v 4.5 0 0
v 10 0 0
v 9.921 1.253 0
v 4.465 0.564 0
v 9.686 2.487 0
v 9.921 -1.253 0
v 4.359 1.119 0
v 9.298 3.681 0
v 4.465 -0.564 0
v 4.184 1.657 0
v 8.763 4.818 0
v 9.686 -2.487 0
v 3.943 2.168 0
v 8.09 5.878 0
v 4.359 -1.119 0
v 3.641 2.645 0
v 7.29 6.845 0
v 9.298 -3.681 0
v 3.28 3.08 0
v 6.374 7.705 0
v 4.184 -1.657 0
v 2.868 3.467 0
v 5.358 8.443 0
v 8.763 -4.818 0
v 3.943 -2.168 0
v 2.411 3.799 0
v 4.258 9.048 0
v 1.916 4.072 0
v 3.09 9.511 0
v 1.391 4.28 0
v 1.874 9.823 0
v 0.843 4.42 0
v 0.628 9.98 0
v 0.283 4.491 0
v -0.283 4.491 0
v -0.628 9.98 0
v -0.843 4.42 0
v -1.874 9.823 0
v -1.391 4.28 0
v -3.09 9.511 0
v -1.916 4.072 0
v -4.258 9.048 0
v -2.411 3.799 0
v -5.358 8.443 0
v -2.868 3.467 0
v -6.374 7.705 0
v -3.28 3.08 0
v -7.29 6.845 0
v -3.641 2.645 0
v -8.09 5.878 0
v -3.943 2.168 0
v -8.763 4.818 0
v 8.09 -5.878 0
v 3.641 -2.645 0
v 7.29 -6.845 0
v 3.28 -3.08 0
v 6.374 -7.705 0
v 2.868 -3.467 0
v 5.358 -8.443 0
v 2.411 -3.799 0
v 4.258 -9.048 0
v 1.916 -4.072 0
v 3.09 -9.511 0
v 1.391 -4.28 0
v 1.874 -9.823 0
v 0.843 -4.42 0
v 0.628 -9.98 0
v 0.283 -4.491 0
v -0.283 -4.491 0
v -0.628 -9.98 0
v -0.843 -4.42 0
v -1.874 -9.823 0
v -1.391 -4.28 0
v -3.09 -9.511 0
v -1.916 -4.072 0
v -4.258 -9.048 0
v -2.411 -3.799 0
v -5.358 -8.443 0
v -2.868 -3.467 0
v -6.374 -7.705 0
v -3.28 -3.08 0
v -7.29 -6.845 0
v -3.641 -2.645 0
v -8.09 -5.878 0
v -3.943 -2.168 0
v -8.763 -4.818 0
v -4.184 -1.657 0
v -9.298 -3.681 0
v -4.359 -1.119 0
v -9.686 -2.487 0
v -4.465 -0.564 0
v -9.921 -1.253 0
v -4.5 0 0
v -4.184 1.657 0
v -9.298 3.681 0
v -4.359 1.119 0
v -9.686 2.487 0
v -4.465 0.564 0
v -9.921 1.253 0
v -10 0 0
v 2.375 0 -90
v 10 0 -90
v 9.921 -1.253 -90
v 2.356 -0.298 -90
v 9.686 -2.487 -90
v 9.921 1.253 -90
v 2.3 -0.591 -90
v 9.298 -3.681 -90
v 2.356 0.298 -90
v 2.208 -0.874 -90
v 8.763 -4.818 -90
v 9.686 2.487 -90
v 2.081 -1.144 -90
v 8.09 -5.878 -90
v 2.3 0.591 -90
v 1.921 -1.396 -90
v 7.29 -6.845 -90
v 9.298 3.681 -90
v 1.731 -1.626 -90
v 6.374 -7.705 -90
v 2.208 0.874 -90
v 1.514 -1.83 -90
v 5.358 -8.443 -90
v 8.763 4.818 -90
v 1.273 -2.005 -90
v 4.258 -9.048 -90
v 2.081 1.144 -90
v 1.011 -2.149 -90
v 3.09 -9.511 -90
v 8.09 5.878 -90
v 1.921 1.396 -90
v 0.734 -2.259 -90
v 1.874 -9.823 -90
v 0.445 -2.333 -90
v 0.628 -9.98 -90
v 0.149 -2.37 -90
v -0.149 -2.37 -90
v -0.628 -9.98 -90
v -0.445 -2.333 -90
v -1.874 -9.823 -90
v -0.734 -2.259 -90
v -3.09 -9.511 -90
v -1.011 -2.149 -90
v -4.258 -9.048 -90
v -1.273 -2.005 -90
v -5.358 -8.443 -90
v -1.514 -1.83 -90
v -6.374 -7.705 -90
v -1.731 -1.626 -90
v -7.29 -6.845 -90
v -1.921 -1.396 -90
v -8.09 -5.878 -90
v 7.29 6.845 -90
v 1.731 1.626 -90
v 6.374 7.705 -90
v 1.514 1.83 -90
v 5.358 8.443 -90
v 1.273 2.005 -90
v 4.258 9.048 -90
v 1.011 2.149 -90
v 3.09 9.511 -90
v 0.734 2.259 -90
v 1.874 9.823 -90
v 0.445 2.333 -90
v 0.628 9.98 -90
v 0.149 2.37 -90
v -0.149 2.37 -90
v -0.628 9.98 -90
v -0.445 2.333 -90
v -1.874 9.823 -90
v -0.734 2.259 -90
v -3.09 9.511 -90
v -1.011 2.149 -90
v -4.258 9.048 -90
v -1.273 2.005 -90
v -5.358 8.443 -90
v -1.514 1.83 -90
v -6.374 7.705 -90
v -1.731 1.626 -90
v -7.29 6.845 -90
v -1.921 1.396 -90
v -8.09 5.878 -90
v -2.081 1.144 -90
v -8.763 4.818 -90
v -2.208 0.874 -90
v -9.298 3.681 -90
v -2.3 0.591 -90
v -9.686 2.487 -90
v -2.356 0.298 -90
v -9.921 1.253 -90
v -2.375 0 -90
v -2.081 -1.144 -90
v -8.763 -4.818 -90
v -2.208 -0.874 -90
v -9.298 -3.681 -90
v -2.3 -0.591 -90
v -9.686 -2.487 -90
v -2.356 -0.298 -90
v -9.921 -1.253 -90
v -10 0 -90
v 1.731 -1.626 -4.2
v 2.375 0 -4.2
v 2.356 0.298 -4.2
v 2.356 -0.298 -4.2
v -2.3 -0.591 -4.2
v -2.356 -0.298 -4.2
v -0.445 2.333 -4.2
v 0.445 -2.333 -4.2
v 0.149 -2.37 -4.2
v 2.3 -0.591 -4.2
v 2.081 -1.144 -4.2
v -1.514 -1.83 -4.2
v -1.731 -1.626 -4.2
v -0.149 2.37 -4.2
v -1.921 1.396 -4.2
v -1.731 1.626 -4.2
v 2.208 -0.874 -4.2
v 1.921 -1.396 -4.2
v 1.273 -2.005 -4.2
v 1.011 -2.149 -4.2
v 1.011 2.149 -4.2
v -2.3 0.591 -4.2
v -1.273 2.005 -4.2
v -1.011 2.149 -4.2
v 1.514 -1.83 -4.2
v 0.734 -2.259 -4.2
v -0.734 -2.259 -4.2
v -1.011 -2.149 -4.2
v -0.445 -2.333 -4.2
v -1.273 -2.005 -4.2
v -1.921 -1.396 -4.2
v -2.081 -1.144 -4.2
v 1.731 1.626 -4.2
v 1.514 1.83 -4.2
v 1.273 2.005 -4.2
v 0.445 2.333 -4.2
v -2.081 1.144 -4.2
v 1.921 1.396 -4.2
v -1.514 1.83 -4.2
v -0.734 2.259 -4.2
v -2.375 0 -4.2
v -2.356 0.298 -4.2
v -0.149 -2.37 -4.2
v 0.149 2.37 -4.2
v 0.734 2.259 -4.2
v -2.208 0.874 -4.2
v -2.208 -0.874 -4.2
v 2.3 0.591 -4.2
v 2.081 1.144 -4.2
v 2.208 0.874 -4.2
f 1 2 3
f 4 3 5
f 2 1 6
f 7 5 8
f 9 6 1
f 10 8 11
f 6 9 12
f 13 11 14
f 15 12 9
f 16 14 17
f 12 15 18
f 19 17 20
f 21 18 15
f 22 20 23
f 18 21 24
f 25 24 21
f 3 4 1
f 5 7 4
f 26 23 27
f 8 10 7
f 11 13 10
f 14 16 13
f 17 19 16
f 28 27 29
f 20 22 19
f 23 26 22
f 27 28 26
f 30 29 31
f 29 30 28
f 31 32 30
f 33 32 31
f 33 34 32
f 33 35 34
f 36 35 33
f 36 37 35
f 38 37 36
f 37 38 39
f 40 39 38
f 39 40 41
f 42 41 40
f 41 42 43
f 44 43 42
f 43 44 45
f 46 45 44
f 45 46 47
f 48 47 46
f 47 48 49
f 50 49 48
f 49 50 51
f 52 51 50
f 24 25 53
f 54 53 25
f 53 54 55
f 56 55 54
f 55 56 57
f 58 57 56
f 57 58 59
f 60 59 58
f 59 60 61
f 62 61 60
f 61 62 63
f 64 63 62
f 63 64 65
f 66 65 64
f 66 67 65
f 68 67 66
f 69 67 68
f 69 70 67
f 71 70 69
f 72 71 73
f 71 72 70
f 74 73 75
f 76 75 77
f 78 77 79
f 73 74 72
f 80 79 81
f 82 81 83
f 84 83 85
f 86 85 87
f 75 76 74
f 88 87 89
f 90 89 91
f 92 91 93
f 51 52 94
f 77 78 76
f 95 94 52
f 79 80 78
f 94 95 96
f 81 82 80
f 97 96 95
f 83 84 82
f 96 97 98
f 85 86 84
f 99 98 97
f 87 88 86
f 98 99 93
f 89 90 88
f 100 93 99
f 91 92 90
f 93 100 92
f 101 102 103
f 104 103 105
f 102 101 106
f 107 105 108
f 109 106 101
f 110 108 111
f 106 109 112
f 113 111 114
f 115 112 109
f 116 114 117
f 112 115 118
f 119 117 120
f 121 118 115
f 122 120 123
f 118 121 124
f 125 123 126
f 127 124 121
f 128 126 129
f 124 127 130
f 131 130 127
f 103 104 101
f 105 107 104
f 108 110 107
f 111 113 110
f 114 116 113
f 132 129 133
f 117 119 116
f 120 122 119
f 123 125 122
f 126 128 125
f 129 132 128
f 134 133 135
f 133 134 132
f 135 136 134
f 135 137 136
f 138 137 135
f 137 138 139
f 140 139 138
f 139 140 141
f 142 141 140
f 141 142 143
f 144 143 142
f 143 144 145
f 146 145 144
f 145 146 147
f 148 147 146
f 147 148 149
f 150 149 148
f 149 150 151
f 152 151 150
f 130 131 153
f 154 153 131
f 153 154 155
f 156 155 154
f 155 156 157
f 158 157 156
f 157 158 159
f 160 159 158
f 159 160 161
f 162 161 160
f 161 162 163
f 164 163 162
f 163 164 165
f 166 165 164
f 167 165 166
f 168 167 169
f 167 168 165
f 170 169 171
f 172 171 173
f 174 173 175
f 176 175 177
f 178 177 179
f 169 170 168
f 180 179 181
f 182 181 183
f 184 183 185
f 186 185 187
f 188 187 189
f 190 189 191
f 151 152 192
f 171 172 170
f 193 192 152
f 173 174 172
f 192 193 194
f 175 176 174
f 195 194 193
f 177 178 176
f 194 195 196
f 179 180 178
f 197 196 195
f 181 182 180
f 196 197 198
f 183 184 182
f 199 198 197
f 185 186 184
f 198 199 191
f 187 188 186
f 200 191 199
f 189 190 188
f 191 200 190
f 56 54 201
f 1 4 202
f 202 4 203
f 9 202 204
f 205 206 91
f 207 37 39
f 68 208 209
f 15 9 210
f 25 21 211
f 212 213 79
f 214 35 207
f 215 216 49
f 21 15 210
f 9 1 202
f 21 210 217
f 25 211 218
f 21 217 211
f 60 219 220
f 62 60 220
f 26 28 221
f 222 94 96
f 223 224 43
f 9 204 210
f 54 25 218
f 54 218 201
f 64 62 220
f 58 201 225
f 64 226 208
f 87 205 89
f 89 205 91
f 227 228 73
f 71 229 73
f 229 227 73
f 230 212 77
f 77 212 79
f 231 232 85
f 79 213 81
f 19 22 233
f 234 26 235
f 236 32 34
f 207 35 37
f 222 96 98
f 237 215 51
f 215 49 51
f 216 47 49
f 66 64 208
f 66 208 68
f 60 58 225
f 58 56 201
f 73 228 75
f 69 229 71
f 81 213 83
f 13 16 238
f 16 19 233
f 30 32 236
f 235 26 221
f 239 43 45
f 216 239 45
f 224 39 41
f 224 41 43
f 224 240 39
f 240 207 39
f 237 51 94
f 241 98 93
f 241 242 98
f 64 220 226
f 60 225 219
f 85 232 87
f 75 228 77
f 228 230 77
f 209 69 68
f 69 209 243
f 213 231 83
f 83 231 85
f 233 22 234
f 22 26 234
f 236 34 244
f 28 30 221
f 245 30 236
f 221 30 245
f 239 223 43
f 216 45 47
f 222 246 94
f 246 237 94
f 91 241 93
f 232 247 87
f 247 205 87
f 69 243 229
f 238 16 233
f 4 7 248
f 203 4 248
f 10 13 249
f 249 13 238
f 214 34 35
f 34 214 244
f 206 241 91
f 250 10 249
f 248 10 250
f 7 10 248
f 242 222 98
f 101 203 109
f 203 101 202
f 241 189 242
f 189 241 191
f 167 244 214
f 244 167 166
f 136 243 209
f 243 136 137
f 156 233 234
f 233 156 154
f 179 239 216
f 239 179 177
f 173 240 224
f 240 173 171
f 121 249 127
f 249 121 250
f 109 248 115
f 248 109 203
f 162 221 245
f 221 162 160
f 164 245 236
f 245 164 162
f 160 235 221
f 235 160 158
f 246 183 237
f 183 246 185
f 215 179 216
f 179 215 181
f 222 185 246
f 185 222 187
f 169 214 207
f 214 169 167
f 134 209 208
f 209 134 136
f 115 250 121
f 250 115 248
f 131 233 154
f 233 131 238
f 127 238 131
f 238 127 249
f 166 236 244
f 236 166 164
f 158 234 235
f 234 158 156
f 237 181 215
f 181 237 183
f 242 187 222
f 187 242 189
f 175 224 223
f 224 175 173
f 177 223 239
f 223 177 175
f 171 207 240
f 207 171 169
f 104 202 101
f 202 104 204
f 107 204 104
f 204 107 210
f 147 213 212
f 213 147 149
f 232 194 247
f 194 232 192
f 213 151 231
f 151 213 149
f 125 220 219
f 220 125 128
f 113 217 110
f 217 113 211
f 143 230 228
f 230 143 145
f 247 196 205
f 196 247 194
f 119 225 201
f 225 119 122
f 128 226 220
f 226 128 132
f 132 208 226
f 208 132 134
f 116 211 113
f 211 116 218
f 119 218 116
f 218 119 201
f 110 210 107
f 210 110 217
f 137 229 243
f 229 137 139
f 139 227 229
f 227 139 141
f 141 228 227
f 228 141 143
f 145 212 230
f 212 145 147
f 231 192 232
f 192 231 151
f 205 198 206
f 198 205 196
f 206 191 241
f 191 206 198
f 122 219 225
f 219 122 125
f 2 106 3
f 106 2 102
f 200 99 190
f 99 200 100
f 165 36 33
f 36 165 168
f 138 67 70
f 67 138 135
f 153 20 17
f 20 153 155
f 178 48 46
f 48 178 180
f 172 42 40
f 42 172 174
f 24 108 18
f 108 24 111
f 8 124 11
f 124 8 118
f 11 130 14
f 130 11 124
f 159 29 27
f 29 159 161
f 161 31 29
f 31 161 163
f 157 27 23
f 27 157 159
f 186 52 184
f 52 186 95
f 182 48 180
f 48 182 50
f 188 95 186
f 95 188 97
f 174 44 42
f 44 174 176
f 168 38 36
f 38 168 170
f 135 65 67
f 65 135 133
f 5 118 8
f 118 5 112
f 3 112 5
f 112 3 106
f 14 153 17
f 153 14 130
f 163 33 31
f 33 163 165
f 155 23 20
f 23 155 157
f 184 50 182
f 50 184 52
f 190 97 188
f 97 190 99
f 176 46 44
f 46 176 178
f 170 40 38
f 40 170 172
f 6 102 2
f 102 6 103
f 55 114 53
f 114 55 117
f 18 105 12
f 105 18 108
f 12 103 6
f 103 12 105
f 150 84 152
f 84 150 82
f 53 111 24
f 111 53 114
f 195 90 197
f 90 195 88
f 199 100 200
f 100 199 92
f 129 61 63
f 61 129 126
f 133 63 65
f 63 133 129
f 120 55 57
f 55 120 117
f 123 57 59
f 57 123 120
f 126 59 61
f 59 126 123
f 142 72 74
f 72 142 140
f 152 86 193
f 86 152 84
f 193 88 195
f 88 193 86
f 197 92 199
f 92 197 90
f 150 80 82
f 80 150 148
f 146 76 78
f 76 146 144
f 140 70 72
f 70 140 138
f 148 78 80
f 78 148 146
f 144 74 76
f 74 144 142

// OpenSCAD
$fn = 50;


difference() {
	union() {
		translate(v = [0, 0, -90.0000000000]) {
			cylinder(h = 90, r = 10.0000000000);
		}
		cylinder(h = 0, r = 20.0000000000);
	}
	union() {
		translate(v = [0, 0, 0]) {
			rotate(a = [0, 0, 0]) {
				difference() {
					union() {
						#translate(v = [0, 0, -90.0000000000]) {
							cylinder(h = 90, r = 2.2500000000);
						}
						#translate(v = [0, 0, -4.2000000000]) {
							cylinder(h = 4.2000000000, r1 = 2.3750000000, r2 = 4.5000000000);
						}
						#translate(v = [0, 0, -90.0000000000]) {
							cylinder(h = 90, r = 2.3750000000);
						}
						#translate(v = [0, 0, -90.0000000000]) {
							cylinder(h = 90, r = 2.2500000000);
						}
					}
					union();
				}
			}
		}
	}
}
